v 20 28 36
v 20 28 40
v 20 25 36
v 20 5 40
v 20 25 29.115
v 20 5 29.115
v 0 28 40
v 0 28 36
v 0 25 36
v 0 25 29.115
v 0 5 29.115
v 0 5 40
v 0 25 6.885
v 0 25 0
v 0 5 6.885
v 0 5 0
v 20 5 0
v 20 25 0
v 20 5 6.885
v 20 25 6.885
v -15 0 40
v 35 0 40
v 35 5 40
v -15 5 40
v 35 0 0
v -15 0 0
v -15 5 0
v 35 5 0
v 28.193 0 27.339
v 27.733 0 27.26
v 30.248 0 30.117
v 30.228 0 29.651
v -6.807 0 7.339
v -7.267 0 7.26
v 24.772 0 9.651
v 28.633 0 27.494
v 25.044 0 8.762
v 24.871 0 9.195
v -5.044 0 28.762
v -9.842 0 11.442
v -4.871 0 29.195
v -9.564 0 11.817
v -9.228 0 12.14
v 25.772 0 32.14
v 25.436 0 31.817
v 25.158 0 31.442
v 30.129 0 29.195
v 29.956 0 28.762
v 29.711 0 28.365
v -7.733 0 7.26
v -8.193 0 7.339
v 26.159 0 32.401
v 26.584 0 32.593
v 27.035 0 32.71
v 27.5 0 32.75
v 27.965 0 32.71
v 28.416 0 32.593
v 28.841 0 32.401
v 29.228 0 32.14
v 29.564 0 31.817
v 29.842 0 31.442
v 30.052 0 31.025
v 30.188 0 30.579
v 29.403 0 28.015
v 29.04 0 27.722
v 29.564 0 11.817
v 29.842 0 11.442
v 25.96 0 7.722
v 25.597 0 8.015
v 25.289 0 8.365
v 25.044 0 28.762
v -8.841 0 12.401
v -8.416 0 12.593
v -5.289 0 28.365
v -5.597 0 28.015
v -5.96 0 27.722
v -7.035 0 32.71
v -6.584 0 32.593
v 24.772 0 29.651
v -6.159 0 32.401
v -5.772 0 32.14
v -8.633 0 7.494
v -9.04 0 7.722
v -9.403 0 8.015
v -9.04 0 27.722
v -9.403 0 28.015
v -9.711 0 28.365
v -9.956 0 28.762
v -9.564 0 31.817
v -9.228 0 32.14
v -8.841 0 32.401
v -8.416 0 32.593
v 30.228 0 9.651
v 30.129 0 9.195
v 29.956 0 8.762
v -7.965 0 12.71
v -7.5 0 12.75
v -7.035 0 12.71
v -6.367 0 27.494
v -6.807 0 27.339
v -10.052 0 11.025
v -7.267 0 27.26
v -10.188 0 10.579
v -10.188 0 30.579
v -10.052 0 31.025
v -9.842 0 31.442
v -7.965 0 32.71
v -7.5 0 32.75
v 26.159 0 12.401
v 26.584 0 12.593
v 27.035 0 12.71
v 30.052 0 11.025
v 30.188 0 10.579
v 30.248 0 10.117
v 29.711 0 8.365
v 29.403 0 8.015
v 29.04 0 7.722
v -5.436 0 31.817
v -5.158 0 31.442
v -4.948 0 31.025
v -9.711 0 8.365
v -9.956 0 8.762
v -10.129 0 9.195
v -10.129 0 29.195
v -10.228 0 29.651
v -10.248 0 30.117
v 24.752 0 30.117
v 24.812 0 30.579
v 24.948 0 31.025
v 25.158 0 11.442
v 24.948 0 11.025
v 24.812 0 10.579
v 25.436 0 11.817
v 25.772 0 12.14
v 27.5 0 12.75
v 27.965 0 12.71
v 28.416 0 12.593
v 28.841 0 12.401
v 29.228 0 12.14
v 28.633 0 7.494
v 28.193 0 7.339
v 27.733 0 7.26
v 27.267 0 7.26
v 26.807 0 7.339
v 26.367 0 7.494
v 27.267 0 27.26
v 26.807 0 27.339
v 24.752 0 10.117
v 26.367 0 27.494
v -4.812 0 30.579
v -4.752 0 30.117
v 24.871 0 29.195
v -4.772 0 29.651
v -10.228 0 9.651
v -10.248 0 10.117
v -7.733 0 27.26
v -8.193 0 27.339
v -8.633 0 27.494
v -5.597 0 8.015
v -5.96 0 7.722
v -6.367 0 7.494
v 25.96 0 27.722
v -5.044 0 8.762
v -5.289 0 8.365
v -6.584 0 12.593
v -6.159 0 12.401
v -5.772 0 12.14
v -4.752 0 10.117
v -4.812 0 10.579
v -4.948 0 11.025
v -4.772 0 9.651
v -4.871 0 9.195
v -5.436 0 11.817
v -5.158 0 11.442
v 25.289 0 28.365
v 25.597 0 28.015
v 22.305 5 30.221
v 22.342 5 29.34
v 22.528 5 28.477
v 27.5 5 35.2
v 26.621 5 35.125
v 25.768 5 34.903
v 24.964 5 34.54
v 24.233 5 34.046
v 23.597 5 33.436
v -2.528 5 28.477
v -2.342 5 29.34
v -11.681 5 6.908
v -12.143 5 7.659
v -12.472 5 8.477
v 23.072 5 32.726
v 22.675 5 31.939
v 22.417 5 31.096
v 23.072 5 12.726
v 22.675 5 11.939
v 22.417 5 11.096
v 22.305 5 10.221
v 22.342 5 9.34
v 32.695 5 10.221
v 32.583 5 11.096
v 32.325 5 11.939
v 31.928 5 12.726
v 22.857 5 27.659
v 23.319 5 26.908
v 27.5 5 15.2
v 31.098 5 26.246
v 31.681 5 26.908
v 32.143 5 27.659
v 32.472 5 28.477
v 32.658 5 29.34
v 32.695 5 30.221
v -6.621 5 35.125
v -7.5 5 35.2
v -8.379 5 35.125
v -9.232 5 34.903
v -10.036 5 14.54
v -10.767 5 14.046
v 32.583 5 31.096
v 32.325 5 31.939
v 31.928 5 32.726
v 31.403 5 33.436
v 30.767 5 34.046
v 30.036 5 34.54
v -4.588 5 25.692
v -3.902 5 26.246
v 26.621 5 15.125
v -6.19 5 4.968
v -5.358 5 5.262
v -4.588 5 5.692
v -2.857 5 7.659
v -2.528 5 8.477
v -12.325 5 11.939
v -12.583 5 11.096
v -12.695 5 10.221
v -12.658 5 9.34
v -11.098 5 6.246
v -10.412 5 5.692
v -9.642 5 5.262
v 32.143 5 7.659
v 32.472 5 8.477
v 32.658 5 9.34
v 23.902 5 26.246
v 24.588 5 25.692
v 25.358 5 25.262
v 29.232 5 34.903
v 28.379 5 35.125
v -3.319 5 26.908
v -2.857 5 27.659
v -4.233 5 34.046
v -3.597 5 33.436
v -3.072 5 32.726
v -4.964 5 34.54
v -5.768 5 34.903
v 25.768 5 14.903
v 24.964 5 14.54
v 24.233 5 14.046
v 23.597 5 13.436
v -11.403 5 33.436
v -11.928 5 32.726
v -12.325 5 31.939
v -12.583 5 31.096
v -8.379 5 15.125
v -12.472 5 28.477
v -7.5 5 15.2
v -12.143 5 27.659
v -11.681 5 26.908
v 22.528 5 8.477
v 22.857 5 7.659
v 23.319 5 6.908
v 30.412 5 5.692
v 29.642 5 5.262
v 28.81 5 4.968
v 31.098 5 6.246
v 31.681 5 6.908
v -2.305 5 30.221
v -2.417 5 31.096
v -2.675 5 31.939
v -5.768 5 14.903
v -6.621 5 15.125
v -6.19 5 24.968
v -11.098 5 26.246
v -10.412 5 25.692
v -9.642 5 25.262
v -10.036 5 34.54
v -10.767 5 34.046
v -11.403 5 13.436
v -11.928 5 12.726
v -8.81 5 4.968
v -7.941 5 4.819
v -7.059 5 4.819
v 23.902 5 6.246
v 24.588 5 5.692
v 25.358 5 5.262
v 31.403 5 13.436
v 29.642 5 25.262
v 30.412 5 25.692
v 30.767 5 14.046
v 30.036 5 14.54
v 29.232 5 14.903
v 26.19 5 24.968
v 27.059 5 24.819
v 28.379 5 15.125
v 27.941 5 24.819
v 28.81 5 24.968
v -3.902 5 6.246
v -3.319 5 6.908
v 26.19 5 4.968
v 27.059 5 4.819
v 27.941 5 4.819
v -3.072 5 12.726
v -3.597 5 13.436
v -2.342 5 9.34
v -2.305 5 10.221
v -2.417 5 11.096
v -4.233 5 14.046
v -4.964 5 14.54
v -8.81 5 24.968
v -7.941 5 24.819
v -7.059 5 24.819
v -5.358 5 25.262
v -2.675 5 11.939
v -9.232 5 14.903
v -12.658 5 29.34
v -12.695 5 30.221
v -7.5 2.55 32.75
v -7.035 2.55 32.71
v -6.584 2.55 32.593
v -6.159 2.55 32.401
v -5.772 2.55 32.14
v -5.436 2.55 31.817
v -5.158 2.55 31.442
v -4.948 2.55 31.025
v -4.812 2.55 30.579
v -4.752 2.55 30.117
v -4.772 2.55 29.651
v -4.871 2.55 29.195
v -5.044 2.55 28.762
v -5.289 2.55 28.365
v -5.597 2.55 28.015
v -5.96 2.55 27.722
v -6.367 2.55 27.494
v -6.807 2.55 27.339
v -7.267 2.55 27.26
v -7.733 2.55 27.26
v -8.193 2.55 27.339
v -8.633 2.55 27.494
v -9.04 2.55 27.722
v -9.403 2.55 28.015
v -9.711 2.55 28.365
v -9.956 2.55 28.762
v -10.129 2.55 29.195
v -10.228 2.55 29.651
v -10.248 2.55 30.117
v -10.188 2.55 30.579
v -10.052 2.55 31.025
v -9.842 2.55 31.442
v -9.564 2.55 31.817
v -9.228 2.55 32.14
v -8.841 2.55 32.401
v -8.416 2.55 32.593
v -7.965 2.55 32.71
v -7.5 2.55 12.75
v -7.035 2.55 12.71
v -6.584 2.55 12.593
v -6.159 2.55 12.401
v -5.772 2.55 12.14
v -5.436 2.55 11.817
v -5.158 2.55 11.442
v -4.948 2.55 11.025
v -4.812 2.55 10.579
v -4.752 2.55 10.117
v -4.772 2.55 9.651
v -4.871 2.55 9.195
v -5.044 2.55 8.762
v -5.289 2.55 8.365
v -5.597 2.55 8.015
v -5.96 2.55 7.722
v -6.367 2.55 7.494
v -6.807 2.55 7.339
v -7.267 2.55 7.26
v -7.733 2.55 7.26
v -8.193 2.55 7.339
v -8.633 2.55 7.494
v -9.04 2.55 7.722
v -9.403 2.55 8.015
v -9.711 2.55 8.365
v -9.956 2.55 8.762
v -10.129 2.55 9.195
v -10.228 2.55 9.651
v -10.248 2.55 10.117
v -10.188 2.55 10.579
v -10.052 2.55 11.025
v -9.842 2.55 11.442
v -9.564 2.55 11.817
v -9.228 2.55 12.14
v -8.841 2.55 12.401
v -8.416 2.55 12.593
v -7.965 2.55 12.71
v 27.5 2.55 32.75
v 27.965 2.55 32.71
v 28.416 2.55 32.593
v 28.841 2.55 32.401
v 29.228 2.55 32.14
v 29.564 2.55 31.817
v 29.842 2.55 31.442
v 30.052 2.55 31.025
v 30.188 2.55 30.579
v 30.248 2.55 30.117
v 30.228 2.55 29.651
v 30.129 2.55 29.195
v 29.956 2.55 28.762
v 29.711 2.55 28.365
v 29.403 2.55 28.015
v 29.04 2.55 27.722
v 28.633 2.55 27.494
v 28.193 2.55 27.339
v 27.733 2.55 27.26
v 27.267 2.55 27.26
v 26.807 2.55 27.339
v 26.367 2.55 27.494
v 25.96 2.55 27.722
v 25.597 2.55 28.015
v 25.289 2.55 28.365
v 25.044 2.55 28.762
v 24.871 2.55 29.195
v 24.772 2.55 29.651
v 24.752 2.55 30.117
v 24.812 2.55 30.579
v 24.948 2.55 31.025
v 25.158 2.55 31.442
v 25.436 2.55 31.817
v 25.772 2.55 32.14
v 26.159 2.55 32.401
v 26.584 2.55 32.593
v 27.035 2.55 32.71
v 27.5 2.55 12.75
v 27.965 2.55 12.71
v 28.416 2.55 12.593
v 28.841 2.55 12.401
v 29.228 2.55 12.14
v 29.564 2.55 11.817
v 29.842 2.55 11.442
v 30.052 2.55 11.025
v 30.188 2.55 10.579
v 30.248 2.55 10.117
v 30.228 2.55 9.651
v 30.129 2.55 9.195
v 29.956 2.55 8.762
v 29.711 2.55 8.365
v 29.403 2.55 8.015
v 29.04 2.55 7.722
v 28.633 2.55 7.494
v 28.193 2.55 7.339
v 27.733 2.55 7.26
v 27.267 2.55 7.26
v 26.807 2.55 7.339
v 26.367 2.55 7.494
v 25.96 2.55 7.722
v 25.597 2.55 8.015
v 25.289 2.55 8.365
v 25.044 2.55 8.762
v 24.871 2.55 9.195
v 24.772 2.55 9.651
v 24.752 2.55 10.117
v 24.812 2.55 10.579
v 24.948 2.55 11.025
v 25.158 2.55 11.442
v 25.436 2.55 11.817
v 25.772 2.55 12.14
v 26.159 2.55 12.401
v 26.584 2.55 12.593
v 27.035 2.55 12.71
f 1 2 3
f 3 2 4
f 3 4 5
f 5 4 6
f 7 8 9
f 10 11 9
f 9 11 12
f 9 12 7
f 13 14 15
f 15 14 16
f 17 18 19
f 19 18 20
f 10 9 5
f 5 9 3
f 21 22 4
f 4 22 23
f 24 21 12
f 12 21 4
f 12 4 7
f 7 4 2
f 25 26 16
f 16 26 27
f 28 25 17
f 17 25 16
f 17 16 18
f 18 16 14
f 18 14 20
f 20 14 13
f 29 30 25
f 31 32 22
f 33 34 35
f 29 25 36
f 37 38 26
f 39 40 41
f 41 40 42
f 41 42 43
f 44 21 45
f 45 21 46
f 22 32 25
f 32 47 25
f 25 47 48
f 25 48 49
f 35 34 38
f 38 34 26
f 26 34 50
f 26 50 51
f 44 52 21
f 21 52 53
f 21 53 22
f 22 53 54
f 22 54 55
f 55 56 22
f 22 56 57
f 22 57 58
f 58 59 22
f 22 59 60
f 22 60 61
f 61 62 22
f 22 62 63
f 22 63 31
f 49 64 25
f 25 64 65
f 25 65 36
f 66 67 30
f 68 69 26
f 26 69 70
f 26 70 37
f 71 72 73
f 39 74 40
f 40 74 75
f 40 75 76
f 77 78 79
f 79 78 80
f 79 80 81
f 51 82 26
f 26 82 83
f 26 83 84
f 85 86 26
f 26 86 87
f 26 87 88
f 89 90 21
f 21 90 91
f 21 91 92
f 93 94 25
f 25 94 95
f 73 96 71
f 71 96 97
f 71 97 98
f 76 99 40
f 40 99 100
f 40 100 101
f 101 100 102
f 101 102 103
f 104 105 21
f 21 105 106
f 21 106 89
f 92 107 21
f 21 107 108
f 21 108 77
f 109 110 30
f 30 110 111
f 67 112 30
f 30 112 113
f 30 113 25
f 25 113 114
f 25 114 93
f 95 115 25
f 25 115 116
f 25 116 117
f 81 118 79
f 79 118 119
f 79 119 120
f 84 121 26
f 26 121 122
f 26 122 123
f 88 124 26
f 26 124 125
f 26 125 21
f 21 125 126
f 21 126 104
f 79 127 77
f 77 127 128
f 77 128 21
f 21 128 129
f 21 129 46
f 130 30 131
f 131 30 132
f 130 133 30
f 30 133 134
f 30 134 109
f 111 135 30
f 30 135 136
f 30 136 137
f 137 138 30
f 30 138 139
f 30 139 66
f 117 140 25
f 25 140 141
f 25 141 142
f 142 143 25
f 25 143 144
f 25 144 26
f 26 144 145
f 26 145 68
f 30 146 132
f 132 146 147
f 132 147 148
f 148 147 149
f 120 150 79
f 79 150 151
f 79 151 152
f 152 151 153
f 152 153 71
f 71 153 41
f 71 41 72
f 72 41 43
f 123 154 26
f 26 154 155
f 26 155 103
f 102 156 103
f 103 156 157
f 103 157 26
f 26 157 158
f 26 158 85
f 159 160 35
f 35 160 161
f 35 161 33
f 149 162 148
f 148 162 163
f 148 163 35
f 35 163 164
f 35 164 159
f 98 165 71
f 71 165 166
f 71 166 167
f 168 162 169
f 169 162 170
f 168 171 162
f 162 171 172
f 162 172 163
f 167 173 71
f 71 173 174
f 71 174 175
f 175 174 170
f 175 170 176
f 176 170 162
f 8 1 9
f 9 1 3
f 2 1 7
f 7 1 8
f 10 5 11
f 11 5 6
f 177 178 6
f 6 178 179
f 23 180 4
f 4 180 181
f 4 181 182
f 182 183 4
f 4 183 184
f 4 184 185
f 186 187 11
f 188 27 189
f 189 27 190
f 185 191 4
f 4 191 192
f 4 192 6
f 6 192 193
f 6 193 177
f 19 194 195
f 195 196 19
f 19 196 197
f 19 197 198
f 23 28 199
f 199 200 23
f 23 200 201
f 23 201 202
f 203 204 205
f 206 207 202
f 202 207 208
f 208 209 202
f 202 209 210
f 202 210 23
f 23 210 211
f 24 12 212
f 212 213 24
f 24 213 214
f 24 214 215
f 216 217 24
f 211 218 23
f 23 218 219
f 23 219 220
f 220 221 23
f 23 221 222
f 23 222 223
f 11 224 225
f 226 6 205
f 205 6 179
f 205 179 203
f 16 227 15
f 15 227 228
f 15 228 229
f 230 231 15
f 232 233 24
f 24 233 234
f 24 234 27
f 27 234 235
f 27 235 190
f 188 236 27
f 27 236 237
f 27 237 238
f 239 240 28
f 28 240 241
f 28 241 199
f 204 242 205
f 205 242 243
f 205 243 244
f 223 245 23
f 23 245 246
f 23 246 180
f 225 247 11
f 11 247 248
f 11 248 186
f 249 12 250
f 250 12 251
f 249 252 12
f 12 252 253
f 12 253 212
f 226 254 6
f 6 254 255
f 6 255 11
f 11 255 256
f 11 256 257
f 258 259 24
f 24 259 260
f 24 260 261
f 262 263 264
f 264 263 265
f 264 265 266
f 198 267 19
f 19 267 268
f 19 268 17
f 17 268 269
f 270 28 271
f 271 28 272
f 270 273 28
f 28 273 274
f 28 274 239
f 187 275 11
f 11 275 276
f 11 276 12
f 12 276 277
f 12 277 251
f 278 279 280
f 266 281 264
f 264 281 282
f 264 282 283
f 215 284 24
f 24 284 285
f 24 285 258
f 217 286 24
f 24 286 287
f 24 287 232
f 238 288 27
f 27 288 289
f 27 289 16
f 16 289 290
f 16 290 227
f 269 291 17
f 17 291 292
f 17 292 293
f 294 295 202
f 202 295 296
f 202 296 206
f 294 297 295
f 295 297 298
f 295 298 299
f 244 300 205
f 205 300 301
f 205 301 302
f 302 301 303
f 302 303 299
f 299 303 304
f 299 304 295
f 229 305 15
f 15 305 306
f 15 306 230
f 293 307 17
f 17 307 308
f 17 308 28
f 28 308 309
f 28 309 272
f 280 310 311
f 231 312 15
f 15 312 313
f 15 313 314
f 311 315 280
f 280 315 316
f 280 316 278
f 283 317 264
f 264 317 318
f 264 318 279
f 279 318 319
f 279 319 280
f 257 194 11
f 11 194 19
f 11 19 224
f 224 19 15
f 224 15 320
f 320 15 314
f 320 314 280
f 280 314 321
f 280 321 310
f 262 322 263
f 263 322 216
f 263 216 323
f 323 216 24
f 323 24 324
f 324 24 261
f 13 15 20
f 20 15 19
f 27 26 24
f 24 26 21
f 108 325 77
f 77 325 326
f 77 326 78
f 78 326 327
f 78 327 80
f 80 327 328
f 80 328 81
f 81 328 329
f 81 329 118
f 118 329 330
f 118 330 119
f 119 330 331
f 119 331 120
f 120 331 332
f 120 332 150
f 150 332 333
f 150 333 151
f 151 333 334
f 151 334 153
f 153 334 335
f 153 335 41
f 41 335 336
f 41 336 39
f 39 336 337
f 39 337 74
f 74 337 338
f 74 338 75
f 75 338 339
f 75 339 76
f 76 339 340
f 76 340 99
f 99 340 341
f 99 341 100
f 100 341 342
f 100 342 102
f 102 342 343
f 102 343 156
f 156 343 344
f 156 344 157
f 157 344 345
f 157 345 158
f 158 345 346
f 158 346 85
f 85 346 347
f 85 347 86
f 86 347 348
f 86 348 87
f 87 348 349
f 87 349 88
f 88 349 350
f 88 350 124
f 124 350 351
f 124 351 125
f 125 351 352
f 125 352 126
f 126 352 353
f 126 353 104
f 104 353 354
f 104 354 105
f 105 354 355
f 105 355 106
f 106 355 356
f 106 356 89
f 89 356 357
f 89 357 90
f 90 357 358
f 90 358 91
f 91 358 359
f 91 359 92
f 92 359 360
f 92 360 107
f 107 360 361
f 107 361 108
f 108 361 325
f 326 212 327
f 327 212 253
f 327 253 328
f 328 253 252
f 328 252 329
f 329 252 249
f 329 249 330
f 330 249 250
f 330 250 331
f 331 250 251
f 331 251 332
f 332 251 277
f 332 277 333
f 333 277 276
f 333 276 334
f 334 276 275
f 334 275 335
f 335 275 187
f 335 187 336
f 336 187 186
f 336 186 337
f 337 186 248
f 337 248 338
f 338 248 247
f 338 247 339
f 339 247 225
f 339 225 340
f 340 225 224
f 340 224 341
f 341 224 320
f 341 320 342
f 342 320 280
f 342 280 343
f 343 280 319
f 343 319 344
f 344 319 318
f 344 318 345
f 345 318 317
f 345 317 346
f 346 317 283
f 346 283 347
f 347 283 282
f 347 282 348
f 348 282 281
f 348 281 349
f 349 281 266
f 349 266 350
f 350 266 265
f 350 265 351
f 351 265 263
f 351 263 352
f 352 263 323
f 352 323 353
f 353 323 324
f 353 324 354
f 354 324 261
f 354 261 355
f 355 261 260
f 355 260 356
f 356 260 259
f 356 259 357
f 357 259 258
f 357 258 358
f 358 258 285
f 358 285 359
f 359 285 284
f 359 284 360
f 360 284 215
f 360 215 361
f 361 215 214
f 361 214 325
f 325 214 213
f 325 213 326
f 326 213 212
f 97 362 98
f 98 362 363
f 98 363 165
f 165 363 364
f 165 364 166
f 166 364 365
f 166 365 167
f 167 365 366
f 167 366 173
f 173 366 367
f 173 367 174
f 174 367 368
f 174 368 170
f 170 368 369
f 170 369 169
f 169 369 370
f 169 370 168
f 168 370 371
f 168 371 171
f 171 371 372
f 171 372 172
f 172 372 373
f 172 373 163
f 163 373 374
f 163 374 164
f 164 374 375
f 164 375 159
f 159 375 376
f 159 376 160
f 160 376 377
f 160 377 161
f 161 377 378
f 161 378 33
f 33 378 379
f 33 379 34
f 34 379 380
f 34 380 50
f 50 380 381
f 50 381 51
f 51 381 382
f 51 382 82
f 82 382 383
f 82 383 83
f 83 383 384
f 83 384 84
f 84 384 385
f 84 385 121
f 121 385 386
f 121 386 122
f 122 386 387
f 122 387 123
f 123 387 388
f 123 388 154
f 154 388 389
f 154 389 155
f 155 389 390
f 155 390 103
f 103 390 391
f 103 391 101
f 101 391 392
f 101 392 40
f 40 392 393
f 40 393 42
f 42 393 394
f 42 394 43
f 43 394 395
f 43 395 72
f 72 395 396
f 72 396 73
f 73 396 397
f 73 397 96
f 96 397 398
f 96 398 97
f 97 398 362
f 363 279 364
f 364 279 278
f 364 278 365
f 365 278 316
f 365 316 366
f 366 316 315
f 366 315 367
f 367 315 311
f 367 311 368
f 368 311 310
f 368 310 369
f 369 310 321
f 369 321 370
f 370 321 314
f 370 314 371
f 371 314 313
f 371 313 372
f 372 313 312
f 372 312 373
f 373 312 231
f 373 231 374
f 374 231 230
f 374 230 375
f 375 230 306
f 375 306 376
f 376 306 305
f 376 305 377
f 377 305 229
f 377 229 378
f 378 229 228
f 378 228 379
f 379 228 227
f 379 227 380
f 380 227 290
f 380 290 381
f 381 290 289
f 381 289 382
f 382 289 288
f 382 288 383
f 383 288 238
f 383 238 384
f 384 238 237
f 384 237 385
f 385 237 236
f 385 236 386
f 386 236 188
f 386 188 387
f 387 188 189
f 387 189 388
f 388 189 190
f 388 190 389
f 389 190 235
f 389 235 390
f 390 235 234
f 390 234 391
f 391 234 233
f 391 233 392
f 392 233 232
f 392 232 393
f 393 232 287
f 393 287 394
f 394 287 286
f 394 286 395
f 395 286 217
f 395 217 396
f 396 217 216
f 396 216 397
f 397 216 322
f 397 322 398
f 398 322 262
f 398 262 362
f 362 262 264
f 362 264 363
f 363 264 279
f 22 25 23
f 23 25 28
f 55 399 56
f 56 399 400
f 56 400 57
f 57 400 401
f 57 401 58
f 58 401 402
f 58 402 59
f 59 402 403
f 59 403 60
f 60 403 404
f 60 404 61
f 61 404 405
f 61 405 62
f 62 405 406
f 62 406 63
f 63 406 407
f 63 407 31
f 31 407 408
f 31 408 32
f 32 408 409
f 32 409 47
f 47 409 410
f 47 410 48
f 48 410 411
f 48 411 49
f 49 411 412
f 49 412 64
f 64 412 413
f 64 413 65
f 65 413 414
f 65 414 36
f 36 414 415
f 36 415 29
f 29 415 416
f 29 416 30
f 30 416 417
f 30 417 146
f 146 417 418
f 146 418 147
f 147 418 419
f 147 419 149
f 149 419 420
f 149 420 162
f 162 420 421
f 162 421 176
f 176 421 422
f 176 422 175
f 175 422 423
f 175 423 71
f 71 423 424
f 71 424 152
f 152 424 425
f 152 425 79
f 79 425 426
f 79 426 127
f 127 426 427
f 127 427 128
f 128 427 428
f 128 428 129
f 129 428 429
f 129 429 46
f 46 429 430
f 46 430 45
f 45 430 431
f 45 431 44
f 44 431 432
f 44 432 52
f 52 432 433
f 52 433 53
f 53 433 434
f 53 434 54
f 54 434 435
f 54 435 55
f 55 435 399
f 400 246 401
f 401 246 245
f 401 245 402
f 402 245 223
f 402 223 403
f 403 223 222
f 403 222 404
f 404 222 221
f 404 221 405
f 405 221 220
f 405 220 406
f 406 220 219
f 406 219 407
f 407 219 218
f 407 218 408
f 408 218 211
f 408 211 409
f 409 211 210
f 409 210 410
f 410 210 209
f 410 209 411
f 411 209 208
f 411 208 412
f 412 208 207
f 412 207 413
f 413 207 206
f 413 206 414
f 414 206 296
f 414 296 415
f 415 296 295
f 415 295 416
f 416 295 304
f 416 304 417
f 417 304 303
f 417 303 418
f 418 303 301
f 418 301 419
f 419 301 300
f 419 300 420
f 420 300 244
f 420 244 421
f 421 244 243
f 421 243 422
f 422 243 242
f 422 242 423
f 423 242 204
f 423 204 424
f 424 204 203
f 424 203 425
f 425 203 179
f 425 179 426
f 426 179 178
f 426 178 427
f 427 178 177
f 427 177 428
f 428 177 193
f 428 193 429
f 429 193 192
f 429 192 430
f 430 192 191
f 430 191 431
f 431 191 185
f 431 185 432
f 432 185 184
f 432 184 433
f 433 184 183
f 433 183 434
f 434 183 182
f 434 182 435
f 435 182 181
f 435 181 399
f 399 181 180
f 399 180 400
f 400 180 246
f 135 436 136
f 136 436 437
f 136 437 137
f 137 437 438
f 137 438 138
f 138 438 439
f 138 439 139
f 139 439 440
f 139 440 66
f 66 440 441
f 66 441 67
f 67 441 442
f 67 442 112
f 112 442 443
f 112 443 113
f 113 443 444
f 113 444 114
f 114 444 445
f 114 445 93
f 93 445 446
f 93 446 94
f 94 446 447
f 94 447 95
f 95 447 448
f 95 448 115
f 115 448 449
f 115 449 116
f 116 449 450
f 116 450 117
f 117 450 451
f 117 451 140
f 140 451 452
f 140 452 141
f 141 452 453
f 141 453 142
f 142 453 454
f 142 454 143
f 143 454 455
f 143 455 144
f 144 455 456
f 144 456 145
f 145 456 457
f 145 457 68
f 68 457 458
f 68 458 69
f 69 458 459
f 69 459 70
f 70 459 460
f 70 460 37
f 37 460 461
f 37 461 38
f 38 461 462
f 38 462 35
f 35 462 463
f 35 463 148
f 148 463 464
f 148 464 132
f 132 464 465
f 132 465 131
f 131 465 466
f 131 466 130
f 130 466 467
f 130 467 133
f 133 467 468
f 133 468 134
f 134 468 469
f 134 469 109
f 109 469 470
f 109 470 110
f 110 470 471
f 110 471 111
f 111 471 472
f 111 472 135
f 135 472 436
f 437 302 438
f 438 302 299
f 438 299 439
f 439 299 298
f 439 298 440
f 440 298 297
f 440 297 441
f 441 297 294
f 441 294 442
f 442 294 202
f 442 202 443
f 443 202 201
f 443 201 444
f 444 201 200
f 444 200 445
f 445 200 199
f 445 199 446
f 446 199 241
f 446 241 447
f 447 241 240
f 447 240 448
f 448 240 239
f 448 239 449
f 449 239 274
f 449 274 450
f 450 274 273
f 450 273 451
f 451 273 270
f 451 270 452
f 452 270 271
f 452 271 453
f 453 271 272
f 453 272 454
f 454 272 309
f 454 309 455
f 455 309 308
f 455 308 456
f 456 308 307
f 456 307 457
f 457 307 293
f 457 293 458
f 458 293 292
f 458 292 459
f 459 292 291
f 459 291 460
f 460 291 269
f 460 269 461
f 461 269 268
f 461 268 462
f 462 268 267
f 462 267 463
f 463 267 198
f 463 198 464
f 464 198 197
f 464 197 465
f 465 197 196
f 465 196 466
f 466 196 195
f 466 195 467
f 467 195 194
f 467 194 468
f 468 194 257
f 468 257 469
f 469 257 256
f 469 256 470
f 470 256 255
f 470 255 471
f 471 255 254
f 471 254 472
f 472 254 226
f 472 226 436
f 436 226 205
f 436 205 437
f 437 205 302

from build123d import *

# Parameters (mm, degrees)
SKETCH1_W                                    = 20
SKETCH1_H                                    = 40
BOSS_EXTRUDE1_DEPTH                          = 25
SKETCH2_W                                    = 20
SKETCH2_H                                    = 4
BOSS_EXTRUDE2_DEPTH                          = 3
SKETCH3_W                                    = 22.23
SKETCH3_H                                    = 20
CUT_EXTRUDE1_DEPTH                           = 20
SKETCH4_W                                    = 15
SKETCH4_H                                    = 40
BOSS_EXTRUDE3_DEPTH                          = 5
CSK_FOR_M5_COUNTERSUNK_FLAT_HEAD_SCR_2_COUNT = 2
CSK_FOR_M5_COUNTERSUNK_FLAT_HEAD_SCR_2_PITCH = 20


with BuildPart() as part:
    # Sketch1 → Boss-Extrude1 (new body)
    with BuildSketch(Plane(origin=(0, 0, 0), x_dir=(1, 0, 0), z_dir=(0, 1, 0))):
        with Locations((10, -20)):
            Rectangle(SKETCH1_W, SKETCH1_H)
    extrude(amount=BOSS_EXTRUDE1_DEPTH)

    # Sketch2 → Boss-Extrude2 (add)
    with BuildSketch(Plane(origin=(0, 25, 0), x_dir=(1, 0, 0), z_dir=(0, 1, 0))):
        with Locations((10, -38)):
            Rectangle(SKETCH2_W, SKETCH2_H)
    extrude(amount=BOSS_EXTRUDE2_DEPTH)

    # Sketch3 → Cut-Extrude1 (cut)
    with BuildSketch(Plane.ZY):
        with Locations((18, 15)):
            Rectangle(SKETCH3_W, SKETCH3_H)
    extrude(amount=-CUT_EXTRUDE1_DEPTH, mode=Mode.SUBTRACT)

    # Sketch4 → Boss-Extrude3 (add)
    with BuildSketch(Plane(origin=(0, 0, 0), x_dir=(1, 0, 0), z_dir=(0, 1, 0))):
        with Locations((-7.5, -20)):
            Rectangle(SKETCH4_W, SKETCH4_H)
    boss_extrude3 = extrude(amount=BOSS_EXTRUDE3_DEPTH)

    # Sketch8 → CSK for M5 Countersunk Flat Head Screw1 (revolve, cut)
    with BuildSketch(Plane(origin=(-7.5, 5, 10), x_dir=(0, 0, 1), z_dir=(1, 0, 0))):
        Polygon((0, 0), (0, 5), (2.75, 5), (2.75, 2.45), (5.2, 0), align=None)
    csk_for_m5_countersunk_flat_head_screw1 = revolve(axis=Axis((-7.5, 11.35, 10), (0, -1, 0)), mode=Mode.SUBTRACT)

    # CSK for M5 Countersunk Flat Head Scr 2: CSK for M5 Countersunk Flat Head Screw1 ×2
    with Locations(*[(0, 0, i * CSK_FOR_M5_COUNTERSUNK_FLAT_HEAD_SCR_2_PITCH) for i in range(1, CSK_FOR_M5_COUNTERSUNK_FLAT_HEAD_SCR_2_COUNT)]):
        add(csk_for_m5_countersunk_flat_head_screw1, mode=Mode.SUBTRACT)

    # Mirror1: Boss-Extrude3, CSK for M5 Countersunk Flat Head Screw1 across plane
    add(boss_extrude3.mirror(Plane.ZY.offset(-10)))
    add(csk_for_m5_countersunk_flat_head_screw1.mirror(Plane.ZY.offset(-10)), mode=Mode.SUBTRACT)

    # Mirror1 copy 1 sketch → Mirror1 copy 1 (revolve, cut)
    with BuildSketch(Plane(origin=(27.5, 5, 30), x_dir=(0, 0, 1), z_dir=(-1, 0, 0))):
        Polygon((0, 0), (0, -5), (2.75, -5), (2.75, -2.45), (5.2, 0), align=None)
    revolve(axis=Axis((27.5, 11.35, 30), (0, 1, 0)), mode=Mode.SUBTRACT)


solid = part.part
